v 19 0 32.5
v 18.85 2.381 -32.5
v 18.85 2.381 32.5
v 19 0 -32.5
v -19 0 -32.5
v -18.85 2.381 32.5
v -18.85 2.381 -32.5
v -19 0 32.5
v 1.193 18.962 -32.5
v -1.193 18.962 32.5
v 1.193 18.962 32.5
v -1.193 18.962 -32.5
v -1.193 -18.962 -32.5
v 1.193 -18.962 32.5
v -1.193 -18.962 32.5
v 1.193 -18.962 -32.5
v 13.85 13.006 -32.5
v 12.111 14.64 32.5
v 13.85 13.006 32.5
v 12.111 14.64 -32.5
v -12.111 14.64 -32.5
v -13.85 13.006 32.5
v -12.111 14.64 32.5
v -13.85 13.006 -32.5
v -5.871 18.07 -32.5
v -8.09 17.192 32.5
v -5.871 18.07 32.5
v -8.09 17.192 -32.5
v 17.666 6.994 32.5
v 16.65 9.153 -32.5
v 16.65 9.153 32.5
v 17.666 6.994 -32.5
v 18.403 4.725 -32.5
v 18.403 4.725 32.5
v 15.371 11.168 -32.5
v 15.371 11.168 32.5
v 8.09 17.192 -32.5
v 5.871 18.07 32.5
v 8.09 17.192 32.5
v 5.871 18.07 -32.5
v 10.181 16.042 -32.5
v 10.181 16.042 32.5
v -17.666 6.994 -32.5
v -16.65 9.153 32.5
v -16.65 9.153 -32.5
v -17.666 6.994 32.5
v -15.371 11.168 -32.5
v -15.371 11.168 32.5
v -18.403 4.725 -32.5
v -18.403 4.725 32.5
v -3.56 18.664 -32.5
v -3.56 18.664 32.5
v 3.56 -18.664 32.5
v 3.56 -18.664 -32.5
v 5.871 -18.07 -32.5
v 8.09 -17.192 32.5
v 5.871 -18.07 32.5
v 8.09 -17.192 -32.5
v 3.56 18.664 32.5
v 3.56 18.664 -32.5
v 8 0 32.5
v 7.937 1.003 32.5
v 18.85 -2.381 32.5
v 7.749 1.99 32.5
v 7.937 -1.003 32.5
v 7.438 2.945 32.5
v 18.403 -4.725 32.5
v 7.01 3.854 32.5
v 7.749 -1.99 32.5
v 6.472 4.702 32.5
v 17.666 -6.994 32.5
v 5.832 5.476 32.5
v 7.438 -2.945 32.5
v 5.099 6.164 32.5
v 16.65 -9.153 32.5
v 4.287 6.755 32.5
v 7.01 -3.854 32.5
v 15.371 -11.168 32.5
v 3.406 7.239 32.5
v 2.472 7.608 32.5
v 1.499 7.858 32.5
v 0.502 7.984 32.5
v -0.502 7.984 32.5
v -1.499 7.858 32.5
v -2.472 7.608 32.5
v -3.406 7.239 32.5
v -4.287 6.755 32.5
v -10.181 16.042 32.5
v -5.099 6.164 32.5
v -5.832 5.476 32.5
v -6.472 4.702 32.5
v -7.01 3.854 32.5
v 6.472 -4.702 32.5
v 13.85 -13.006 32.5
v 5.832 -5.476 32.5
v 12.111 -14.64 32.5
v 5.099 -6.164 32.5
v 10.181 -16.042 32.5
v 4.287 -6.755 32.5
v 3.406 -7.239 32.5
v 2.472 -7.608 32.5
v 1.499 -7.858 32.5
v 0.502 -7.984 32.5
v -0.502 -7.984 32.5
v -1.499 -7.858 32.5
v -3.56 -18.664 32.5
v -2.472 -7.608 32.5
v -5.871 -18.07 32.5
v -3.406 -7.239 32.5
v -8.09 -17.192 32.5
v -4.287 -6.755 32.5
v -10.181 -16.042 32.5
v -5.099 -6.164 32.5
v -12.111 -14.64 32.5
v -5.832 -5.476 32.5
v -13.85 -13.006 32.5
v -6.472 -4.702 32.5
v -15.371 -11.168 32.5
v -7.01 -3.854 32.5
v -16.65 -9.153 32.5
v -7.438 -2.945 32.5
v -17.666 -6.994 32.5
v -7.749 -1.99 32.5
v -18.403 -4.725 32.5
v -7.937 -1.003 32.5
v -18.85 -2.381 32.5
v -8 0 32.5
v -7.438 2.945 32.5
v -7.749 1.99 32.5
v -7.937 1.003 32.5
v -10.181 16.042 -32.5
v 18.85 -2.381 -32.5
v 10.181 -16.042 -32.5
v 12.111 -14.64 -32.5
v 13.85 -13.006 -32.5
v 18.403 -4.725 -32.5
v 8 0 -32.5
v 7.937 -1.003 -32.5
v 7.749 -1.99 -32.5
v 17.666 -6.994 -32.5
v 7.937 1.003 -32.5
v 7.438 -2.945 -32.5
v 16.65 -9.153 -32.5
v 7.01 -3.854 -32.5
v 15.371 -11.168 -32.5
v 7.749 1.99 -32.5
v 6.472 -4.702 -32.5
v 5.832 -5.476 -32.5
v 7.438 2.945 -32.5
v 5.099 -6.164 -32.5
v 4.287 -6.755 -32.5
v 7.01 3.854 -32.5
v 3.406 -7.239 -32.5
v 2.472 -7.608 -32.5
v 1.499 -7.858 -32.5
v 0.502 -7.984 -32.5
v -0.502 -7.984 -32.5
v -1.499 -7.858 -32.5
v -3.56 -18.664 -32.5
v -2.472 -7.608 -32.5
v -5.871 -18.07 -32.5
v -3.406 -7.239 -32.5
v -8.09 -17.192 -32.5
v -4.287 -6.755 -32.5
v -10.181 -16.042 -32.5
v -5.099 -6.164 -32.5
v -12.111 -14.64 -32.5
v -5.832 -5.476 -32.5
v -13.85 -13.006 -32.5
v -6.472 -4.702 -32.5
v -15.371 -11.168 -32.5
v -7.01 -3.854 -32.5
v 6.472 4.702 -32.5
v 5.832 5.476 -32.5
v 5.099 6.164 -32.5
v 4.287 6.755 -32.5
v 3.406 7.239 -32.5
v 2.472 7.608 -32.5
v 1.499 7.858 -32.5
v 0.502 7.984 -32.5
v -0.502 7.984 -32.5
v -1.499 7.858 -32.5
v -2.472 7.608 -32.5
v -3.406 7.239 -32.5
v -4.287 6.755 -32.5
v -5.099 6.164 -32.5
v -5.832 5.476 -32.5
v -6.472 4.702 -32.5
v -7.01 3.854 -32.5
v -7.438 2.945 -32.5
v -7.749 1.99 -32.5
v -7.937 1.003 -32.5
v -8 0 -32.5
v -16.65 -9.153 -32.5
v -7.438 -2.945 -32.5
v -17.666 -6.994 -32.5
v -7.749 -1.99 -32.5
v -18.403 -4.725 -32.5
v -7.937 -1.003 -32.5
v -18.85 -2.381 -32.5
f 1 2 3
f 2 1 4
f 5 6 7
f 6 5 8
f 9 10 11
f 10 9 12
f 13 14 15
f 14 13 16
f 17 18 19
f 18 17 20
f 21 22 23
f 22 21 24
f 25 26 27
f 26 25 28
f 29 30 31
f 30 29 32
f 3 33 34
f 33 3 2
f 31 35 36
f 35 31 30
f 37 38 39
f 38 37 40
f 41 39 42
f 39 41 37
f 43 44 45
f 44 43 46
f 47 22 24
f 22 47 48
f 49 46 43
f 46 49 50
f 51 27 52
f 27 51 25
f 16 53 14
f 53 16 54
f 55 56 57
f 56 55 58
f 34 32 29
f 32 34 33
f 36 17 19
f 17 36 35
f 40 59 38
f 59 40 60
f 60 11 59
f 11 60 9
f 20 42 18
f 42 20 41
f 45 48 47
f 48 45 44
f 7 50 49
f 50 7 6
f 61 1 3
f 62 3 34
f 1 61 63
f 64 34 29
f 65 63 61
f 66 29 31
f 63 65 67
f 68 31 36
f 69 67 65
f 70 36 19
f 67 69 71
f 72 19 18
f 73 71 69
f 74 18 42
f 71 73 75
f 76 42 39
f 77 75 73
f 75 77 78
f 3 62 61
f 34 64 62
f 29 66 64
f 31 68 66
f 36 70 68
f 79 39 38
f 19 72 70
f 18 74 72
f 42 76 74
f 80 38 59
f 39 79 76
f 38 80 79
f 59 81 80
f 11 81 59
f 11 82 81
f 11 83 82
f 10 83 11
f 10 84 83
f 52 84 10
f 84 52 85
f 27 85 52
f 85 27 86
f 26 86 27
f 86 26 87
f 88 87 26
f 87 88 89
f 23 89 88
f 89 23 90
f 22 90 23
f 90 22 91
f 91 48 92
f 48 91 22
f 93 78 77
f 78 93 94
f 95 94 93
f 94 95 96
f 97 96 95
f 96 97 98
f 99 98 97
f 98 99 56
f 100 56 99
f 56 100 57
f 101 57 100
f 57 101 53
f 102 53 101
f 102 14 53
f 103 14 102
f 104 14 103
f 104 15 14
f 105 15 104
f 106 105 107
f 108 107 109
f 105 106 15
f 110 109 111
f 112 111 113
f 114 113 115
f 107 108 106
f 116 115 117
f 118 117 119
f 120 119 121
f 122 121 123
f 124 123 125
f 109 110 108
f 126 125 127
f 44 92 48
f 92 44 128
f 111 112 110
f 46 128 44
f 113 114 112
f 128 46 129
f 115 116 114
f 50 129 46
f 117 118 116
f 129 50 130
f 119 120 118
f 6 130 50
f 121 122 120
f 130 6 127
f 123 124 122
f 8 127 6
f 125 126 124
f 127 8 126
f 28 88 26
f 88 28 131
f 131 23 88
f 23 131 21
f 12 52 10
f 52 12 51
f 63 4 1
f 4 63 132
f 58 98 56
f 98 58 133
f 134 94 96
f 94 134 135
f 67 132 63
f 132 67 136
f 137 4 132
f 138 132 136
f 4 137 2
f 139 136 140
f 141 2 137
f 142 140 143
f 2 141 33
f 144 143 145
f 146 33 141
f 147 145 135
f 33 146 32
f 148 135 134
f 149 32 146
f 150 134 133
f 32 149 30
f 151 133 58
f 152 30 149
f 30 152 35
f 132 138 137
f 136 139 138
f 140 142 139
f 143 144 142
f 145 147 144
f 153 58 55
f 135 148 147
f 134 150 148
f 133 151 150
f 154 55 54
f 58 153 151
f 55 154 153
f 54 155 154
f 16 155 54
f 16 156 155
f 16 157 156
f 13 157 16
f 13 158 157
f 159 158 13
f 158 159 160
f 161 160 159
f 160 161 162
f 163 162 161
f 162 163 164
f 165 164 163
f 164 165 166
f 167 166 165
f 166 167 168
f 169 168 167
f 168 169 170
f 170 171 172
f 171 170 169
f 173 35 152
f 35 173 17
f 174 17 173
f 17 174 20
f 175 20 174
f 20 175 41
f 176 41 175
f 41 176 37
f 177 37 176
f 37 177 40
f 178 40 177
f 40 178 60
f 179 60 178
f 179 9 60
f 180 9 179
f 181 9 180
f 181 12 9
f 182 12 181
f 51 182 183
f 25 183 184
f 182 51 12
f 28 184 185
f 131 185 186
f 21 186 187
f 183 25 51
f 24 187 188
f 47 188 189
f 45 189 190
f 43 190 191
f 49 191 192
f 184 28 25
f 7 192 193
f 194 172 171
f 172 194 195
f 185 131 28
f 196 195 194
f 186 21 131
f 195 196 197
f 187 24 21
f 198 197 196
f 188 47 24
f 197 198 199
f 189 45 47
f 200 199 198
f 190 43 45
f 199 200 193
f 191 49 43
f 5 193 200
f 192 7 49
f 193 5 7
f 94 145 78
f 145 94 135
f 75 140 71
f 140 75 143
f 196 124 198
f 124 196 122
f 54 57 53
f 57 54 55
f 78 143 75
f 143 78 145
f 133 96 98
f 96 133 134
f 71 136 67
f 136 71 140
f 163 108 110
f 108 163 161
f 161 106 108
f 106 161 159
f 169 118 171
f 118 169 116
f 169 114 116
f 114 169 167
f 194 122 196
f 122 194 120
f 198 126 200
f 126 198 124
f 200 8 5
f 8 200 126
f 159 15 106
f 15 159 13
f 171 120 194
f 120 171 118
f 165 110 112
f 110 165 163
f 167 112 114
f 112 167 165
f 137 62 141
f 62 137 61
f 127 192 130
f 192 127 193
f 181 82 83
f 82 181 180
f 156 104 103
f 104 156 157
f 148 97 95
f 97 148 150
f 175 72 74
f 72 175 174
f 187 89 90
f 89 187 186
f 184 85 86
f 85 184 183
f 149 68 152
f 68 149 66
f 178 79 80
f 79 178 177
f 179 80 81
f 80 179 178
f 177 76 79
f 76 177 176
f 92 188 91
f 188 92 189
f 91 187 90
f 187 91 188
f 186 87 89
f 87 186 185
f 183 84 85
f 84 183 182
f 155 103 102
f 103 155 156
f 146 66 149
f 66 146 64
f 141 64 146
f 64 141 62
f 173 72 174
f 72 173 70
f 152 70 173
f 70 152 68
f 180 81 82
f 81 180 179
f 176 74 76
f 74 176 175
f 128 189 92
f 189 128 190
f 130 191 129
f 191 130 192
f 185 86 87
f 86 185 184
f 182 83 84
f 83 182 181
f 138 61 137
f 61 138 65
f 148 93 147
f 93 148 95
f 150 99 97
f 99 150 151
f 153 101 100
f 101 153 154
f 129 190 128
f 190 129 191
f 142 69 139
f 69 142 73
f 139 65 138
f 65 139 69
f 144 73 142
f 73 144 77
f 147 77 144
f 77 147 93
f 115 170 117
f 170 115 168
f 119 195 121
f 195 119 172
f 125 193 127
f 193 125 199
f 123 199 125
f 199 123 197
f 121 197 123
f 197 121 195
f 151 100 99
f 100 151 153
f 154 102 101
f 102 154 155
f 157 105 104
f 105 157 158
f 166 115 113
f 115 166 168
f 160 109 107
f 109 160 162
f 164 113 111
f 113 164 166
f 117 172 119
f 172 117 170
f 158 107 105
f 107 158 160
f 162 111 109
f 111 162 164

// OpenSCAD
$fn = 50;


difference() {
	union() {
		translate(v = [0, 0, -32.5000000000]) {
			cylinder(h = 65, r = 19.0000000000);
		}
	}
	union() {
		translate(v = [0, 0, -100.0000000000]) {
			cylinder(h = 200, r = 8);
		}
	}
}
